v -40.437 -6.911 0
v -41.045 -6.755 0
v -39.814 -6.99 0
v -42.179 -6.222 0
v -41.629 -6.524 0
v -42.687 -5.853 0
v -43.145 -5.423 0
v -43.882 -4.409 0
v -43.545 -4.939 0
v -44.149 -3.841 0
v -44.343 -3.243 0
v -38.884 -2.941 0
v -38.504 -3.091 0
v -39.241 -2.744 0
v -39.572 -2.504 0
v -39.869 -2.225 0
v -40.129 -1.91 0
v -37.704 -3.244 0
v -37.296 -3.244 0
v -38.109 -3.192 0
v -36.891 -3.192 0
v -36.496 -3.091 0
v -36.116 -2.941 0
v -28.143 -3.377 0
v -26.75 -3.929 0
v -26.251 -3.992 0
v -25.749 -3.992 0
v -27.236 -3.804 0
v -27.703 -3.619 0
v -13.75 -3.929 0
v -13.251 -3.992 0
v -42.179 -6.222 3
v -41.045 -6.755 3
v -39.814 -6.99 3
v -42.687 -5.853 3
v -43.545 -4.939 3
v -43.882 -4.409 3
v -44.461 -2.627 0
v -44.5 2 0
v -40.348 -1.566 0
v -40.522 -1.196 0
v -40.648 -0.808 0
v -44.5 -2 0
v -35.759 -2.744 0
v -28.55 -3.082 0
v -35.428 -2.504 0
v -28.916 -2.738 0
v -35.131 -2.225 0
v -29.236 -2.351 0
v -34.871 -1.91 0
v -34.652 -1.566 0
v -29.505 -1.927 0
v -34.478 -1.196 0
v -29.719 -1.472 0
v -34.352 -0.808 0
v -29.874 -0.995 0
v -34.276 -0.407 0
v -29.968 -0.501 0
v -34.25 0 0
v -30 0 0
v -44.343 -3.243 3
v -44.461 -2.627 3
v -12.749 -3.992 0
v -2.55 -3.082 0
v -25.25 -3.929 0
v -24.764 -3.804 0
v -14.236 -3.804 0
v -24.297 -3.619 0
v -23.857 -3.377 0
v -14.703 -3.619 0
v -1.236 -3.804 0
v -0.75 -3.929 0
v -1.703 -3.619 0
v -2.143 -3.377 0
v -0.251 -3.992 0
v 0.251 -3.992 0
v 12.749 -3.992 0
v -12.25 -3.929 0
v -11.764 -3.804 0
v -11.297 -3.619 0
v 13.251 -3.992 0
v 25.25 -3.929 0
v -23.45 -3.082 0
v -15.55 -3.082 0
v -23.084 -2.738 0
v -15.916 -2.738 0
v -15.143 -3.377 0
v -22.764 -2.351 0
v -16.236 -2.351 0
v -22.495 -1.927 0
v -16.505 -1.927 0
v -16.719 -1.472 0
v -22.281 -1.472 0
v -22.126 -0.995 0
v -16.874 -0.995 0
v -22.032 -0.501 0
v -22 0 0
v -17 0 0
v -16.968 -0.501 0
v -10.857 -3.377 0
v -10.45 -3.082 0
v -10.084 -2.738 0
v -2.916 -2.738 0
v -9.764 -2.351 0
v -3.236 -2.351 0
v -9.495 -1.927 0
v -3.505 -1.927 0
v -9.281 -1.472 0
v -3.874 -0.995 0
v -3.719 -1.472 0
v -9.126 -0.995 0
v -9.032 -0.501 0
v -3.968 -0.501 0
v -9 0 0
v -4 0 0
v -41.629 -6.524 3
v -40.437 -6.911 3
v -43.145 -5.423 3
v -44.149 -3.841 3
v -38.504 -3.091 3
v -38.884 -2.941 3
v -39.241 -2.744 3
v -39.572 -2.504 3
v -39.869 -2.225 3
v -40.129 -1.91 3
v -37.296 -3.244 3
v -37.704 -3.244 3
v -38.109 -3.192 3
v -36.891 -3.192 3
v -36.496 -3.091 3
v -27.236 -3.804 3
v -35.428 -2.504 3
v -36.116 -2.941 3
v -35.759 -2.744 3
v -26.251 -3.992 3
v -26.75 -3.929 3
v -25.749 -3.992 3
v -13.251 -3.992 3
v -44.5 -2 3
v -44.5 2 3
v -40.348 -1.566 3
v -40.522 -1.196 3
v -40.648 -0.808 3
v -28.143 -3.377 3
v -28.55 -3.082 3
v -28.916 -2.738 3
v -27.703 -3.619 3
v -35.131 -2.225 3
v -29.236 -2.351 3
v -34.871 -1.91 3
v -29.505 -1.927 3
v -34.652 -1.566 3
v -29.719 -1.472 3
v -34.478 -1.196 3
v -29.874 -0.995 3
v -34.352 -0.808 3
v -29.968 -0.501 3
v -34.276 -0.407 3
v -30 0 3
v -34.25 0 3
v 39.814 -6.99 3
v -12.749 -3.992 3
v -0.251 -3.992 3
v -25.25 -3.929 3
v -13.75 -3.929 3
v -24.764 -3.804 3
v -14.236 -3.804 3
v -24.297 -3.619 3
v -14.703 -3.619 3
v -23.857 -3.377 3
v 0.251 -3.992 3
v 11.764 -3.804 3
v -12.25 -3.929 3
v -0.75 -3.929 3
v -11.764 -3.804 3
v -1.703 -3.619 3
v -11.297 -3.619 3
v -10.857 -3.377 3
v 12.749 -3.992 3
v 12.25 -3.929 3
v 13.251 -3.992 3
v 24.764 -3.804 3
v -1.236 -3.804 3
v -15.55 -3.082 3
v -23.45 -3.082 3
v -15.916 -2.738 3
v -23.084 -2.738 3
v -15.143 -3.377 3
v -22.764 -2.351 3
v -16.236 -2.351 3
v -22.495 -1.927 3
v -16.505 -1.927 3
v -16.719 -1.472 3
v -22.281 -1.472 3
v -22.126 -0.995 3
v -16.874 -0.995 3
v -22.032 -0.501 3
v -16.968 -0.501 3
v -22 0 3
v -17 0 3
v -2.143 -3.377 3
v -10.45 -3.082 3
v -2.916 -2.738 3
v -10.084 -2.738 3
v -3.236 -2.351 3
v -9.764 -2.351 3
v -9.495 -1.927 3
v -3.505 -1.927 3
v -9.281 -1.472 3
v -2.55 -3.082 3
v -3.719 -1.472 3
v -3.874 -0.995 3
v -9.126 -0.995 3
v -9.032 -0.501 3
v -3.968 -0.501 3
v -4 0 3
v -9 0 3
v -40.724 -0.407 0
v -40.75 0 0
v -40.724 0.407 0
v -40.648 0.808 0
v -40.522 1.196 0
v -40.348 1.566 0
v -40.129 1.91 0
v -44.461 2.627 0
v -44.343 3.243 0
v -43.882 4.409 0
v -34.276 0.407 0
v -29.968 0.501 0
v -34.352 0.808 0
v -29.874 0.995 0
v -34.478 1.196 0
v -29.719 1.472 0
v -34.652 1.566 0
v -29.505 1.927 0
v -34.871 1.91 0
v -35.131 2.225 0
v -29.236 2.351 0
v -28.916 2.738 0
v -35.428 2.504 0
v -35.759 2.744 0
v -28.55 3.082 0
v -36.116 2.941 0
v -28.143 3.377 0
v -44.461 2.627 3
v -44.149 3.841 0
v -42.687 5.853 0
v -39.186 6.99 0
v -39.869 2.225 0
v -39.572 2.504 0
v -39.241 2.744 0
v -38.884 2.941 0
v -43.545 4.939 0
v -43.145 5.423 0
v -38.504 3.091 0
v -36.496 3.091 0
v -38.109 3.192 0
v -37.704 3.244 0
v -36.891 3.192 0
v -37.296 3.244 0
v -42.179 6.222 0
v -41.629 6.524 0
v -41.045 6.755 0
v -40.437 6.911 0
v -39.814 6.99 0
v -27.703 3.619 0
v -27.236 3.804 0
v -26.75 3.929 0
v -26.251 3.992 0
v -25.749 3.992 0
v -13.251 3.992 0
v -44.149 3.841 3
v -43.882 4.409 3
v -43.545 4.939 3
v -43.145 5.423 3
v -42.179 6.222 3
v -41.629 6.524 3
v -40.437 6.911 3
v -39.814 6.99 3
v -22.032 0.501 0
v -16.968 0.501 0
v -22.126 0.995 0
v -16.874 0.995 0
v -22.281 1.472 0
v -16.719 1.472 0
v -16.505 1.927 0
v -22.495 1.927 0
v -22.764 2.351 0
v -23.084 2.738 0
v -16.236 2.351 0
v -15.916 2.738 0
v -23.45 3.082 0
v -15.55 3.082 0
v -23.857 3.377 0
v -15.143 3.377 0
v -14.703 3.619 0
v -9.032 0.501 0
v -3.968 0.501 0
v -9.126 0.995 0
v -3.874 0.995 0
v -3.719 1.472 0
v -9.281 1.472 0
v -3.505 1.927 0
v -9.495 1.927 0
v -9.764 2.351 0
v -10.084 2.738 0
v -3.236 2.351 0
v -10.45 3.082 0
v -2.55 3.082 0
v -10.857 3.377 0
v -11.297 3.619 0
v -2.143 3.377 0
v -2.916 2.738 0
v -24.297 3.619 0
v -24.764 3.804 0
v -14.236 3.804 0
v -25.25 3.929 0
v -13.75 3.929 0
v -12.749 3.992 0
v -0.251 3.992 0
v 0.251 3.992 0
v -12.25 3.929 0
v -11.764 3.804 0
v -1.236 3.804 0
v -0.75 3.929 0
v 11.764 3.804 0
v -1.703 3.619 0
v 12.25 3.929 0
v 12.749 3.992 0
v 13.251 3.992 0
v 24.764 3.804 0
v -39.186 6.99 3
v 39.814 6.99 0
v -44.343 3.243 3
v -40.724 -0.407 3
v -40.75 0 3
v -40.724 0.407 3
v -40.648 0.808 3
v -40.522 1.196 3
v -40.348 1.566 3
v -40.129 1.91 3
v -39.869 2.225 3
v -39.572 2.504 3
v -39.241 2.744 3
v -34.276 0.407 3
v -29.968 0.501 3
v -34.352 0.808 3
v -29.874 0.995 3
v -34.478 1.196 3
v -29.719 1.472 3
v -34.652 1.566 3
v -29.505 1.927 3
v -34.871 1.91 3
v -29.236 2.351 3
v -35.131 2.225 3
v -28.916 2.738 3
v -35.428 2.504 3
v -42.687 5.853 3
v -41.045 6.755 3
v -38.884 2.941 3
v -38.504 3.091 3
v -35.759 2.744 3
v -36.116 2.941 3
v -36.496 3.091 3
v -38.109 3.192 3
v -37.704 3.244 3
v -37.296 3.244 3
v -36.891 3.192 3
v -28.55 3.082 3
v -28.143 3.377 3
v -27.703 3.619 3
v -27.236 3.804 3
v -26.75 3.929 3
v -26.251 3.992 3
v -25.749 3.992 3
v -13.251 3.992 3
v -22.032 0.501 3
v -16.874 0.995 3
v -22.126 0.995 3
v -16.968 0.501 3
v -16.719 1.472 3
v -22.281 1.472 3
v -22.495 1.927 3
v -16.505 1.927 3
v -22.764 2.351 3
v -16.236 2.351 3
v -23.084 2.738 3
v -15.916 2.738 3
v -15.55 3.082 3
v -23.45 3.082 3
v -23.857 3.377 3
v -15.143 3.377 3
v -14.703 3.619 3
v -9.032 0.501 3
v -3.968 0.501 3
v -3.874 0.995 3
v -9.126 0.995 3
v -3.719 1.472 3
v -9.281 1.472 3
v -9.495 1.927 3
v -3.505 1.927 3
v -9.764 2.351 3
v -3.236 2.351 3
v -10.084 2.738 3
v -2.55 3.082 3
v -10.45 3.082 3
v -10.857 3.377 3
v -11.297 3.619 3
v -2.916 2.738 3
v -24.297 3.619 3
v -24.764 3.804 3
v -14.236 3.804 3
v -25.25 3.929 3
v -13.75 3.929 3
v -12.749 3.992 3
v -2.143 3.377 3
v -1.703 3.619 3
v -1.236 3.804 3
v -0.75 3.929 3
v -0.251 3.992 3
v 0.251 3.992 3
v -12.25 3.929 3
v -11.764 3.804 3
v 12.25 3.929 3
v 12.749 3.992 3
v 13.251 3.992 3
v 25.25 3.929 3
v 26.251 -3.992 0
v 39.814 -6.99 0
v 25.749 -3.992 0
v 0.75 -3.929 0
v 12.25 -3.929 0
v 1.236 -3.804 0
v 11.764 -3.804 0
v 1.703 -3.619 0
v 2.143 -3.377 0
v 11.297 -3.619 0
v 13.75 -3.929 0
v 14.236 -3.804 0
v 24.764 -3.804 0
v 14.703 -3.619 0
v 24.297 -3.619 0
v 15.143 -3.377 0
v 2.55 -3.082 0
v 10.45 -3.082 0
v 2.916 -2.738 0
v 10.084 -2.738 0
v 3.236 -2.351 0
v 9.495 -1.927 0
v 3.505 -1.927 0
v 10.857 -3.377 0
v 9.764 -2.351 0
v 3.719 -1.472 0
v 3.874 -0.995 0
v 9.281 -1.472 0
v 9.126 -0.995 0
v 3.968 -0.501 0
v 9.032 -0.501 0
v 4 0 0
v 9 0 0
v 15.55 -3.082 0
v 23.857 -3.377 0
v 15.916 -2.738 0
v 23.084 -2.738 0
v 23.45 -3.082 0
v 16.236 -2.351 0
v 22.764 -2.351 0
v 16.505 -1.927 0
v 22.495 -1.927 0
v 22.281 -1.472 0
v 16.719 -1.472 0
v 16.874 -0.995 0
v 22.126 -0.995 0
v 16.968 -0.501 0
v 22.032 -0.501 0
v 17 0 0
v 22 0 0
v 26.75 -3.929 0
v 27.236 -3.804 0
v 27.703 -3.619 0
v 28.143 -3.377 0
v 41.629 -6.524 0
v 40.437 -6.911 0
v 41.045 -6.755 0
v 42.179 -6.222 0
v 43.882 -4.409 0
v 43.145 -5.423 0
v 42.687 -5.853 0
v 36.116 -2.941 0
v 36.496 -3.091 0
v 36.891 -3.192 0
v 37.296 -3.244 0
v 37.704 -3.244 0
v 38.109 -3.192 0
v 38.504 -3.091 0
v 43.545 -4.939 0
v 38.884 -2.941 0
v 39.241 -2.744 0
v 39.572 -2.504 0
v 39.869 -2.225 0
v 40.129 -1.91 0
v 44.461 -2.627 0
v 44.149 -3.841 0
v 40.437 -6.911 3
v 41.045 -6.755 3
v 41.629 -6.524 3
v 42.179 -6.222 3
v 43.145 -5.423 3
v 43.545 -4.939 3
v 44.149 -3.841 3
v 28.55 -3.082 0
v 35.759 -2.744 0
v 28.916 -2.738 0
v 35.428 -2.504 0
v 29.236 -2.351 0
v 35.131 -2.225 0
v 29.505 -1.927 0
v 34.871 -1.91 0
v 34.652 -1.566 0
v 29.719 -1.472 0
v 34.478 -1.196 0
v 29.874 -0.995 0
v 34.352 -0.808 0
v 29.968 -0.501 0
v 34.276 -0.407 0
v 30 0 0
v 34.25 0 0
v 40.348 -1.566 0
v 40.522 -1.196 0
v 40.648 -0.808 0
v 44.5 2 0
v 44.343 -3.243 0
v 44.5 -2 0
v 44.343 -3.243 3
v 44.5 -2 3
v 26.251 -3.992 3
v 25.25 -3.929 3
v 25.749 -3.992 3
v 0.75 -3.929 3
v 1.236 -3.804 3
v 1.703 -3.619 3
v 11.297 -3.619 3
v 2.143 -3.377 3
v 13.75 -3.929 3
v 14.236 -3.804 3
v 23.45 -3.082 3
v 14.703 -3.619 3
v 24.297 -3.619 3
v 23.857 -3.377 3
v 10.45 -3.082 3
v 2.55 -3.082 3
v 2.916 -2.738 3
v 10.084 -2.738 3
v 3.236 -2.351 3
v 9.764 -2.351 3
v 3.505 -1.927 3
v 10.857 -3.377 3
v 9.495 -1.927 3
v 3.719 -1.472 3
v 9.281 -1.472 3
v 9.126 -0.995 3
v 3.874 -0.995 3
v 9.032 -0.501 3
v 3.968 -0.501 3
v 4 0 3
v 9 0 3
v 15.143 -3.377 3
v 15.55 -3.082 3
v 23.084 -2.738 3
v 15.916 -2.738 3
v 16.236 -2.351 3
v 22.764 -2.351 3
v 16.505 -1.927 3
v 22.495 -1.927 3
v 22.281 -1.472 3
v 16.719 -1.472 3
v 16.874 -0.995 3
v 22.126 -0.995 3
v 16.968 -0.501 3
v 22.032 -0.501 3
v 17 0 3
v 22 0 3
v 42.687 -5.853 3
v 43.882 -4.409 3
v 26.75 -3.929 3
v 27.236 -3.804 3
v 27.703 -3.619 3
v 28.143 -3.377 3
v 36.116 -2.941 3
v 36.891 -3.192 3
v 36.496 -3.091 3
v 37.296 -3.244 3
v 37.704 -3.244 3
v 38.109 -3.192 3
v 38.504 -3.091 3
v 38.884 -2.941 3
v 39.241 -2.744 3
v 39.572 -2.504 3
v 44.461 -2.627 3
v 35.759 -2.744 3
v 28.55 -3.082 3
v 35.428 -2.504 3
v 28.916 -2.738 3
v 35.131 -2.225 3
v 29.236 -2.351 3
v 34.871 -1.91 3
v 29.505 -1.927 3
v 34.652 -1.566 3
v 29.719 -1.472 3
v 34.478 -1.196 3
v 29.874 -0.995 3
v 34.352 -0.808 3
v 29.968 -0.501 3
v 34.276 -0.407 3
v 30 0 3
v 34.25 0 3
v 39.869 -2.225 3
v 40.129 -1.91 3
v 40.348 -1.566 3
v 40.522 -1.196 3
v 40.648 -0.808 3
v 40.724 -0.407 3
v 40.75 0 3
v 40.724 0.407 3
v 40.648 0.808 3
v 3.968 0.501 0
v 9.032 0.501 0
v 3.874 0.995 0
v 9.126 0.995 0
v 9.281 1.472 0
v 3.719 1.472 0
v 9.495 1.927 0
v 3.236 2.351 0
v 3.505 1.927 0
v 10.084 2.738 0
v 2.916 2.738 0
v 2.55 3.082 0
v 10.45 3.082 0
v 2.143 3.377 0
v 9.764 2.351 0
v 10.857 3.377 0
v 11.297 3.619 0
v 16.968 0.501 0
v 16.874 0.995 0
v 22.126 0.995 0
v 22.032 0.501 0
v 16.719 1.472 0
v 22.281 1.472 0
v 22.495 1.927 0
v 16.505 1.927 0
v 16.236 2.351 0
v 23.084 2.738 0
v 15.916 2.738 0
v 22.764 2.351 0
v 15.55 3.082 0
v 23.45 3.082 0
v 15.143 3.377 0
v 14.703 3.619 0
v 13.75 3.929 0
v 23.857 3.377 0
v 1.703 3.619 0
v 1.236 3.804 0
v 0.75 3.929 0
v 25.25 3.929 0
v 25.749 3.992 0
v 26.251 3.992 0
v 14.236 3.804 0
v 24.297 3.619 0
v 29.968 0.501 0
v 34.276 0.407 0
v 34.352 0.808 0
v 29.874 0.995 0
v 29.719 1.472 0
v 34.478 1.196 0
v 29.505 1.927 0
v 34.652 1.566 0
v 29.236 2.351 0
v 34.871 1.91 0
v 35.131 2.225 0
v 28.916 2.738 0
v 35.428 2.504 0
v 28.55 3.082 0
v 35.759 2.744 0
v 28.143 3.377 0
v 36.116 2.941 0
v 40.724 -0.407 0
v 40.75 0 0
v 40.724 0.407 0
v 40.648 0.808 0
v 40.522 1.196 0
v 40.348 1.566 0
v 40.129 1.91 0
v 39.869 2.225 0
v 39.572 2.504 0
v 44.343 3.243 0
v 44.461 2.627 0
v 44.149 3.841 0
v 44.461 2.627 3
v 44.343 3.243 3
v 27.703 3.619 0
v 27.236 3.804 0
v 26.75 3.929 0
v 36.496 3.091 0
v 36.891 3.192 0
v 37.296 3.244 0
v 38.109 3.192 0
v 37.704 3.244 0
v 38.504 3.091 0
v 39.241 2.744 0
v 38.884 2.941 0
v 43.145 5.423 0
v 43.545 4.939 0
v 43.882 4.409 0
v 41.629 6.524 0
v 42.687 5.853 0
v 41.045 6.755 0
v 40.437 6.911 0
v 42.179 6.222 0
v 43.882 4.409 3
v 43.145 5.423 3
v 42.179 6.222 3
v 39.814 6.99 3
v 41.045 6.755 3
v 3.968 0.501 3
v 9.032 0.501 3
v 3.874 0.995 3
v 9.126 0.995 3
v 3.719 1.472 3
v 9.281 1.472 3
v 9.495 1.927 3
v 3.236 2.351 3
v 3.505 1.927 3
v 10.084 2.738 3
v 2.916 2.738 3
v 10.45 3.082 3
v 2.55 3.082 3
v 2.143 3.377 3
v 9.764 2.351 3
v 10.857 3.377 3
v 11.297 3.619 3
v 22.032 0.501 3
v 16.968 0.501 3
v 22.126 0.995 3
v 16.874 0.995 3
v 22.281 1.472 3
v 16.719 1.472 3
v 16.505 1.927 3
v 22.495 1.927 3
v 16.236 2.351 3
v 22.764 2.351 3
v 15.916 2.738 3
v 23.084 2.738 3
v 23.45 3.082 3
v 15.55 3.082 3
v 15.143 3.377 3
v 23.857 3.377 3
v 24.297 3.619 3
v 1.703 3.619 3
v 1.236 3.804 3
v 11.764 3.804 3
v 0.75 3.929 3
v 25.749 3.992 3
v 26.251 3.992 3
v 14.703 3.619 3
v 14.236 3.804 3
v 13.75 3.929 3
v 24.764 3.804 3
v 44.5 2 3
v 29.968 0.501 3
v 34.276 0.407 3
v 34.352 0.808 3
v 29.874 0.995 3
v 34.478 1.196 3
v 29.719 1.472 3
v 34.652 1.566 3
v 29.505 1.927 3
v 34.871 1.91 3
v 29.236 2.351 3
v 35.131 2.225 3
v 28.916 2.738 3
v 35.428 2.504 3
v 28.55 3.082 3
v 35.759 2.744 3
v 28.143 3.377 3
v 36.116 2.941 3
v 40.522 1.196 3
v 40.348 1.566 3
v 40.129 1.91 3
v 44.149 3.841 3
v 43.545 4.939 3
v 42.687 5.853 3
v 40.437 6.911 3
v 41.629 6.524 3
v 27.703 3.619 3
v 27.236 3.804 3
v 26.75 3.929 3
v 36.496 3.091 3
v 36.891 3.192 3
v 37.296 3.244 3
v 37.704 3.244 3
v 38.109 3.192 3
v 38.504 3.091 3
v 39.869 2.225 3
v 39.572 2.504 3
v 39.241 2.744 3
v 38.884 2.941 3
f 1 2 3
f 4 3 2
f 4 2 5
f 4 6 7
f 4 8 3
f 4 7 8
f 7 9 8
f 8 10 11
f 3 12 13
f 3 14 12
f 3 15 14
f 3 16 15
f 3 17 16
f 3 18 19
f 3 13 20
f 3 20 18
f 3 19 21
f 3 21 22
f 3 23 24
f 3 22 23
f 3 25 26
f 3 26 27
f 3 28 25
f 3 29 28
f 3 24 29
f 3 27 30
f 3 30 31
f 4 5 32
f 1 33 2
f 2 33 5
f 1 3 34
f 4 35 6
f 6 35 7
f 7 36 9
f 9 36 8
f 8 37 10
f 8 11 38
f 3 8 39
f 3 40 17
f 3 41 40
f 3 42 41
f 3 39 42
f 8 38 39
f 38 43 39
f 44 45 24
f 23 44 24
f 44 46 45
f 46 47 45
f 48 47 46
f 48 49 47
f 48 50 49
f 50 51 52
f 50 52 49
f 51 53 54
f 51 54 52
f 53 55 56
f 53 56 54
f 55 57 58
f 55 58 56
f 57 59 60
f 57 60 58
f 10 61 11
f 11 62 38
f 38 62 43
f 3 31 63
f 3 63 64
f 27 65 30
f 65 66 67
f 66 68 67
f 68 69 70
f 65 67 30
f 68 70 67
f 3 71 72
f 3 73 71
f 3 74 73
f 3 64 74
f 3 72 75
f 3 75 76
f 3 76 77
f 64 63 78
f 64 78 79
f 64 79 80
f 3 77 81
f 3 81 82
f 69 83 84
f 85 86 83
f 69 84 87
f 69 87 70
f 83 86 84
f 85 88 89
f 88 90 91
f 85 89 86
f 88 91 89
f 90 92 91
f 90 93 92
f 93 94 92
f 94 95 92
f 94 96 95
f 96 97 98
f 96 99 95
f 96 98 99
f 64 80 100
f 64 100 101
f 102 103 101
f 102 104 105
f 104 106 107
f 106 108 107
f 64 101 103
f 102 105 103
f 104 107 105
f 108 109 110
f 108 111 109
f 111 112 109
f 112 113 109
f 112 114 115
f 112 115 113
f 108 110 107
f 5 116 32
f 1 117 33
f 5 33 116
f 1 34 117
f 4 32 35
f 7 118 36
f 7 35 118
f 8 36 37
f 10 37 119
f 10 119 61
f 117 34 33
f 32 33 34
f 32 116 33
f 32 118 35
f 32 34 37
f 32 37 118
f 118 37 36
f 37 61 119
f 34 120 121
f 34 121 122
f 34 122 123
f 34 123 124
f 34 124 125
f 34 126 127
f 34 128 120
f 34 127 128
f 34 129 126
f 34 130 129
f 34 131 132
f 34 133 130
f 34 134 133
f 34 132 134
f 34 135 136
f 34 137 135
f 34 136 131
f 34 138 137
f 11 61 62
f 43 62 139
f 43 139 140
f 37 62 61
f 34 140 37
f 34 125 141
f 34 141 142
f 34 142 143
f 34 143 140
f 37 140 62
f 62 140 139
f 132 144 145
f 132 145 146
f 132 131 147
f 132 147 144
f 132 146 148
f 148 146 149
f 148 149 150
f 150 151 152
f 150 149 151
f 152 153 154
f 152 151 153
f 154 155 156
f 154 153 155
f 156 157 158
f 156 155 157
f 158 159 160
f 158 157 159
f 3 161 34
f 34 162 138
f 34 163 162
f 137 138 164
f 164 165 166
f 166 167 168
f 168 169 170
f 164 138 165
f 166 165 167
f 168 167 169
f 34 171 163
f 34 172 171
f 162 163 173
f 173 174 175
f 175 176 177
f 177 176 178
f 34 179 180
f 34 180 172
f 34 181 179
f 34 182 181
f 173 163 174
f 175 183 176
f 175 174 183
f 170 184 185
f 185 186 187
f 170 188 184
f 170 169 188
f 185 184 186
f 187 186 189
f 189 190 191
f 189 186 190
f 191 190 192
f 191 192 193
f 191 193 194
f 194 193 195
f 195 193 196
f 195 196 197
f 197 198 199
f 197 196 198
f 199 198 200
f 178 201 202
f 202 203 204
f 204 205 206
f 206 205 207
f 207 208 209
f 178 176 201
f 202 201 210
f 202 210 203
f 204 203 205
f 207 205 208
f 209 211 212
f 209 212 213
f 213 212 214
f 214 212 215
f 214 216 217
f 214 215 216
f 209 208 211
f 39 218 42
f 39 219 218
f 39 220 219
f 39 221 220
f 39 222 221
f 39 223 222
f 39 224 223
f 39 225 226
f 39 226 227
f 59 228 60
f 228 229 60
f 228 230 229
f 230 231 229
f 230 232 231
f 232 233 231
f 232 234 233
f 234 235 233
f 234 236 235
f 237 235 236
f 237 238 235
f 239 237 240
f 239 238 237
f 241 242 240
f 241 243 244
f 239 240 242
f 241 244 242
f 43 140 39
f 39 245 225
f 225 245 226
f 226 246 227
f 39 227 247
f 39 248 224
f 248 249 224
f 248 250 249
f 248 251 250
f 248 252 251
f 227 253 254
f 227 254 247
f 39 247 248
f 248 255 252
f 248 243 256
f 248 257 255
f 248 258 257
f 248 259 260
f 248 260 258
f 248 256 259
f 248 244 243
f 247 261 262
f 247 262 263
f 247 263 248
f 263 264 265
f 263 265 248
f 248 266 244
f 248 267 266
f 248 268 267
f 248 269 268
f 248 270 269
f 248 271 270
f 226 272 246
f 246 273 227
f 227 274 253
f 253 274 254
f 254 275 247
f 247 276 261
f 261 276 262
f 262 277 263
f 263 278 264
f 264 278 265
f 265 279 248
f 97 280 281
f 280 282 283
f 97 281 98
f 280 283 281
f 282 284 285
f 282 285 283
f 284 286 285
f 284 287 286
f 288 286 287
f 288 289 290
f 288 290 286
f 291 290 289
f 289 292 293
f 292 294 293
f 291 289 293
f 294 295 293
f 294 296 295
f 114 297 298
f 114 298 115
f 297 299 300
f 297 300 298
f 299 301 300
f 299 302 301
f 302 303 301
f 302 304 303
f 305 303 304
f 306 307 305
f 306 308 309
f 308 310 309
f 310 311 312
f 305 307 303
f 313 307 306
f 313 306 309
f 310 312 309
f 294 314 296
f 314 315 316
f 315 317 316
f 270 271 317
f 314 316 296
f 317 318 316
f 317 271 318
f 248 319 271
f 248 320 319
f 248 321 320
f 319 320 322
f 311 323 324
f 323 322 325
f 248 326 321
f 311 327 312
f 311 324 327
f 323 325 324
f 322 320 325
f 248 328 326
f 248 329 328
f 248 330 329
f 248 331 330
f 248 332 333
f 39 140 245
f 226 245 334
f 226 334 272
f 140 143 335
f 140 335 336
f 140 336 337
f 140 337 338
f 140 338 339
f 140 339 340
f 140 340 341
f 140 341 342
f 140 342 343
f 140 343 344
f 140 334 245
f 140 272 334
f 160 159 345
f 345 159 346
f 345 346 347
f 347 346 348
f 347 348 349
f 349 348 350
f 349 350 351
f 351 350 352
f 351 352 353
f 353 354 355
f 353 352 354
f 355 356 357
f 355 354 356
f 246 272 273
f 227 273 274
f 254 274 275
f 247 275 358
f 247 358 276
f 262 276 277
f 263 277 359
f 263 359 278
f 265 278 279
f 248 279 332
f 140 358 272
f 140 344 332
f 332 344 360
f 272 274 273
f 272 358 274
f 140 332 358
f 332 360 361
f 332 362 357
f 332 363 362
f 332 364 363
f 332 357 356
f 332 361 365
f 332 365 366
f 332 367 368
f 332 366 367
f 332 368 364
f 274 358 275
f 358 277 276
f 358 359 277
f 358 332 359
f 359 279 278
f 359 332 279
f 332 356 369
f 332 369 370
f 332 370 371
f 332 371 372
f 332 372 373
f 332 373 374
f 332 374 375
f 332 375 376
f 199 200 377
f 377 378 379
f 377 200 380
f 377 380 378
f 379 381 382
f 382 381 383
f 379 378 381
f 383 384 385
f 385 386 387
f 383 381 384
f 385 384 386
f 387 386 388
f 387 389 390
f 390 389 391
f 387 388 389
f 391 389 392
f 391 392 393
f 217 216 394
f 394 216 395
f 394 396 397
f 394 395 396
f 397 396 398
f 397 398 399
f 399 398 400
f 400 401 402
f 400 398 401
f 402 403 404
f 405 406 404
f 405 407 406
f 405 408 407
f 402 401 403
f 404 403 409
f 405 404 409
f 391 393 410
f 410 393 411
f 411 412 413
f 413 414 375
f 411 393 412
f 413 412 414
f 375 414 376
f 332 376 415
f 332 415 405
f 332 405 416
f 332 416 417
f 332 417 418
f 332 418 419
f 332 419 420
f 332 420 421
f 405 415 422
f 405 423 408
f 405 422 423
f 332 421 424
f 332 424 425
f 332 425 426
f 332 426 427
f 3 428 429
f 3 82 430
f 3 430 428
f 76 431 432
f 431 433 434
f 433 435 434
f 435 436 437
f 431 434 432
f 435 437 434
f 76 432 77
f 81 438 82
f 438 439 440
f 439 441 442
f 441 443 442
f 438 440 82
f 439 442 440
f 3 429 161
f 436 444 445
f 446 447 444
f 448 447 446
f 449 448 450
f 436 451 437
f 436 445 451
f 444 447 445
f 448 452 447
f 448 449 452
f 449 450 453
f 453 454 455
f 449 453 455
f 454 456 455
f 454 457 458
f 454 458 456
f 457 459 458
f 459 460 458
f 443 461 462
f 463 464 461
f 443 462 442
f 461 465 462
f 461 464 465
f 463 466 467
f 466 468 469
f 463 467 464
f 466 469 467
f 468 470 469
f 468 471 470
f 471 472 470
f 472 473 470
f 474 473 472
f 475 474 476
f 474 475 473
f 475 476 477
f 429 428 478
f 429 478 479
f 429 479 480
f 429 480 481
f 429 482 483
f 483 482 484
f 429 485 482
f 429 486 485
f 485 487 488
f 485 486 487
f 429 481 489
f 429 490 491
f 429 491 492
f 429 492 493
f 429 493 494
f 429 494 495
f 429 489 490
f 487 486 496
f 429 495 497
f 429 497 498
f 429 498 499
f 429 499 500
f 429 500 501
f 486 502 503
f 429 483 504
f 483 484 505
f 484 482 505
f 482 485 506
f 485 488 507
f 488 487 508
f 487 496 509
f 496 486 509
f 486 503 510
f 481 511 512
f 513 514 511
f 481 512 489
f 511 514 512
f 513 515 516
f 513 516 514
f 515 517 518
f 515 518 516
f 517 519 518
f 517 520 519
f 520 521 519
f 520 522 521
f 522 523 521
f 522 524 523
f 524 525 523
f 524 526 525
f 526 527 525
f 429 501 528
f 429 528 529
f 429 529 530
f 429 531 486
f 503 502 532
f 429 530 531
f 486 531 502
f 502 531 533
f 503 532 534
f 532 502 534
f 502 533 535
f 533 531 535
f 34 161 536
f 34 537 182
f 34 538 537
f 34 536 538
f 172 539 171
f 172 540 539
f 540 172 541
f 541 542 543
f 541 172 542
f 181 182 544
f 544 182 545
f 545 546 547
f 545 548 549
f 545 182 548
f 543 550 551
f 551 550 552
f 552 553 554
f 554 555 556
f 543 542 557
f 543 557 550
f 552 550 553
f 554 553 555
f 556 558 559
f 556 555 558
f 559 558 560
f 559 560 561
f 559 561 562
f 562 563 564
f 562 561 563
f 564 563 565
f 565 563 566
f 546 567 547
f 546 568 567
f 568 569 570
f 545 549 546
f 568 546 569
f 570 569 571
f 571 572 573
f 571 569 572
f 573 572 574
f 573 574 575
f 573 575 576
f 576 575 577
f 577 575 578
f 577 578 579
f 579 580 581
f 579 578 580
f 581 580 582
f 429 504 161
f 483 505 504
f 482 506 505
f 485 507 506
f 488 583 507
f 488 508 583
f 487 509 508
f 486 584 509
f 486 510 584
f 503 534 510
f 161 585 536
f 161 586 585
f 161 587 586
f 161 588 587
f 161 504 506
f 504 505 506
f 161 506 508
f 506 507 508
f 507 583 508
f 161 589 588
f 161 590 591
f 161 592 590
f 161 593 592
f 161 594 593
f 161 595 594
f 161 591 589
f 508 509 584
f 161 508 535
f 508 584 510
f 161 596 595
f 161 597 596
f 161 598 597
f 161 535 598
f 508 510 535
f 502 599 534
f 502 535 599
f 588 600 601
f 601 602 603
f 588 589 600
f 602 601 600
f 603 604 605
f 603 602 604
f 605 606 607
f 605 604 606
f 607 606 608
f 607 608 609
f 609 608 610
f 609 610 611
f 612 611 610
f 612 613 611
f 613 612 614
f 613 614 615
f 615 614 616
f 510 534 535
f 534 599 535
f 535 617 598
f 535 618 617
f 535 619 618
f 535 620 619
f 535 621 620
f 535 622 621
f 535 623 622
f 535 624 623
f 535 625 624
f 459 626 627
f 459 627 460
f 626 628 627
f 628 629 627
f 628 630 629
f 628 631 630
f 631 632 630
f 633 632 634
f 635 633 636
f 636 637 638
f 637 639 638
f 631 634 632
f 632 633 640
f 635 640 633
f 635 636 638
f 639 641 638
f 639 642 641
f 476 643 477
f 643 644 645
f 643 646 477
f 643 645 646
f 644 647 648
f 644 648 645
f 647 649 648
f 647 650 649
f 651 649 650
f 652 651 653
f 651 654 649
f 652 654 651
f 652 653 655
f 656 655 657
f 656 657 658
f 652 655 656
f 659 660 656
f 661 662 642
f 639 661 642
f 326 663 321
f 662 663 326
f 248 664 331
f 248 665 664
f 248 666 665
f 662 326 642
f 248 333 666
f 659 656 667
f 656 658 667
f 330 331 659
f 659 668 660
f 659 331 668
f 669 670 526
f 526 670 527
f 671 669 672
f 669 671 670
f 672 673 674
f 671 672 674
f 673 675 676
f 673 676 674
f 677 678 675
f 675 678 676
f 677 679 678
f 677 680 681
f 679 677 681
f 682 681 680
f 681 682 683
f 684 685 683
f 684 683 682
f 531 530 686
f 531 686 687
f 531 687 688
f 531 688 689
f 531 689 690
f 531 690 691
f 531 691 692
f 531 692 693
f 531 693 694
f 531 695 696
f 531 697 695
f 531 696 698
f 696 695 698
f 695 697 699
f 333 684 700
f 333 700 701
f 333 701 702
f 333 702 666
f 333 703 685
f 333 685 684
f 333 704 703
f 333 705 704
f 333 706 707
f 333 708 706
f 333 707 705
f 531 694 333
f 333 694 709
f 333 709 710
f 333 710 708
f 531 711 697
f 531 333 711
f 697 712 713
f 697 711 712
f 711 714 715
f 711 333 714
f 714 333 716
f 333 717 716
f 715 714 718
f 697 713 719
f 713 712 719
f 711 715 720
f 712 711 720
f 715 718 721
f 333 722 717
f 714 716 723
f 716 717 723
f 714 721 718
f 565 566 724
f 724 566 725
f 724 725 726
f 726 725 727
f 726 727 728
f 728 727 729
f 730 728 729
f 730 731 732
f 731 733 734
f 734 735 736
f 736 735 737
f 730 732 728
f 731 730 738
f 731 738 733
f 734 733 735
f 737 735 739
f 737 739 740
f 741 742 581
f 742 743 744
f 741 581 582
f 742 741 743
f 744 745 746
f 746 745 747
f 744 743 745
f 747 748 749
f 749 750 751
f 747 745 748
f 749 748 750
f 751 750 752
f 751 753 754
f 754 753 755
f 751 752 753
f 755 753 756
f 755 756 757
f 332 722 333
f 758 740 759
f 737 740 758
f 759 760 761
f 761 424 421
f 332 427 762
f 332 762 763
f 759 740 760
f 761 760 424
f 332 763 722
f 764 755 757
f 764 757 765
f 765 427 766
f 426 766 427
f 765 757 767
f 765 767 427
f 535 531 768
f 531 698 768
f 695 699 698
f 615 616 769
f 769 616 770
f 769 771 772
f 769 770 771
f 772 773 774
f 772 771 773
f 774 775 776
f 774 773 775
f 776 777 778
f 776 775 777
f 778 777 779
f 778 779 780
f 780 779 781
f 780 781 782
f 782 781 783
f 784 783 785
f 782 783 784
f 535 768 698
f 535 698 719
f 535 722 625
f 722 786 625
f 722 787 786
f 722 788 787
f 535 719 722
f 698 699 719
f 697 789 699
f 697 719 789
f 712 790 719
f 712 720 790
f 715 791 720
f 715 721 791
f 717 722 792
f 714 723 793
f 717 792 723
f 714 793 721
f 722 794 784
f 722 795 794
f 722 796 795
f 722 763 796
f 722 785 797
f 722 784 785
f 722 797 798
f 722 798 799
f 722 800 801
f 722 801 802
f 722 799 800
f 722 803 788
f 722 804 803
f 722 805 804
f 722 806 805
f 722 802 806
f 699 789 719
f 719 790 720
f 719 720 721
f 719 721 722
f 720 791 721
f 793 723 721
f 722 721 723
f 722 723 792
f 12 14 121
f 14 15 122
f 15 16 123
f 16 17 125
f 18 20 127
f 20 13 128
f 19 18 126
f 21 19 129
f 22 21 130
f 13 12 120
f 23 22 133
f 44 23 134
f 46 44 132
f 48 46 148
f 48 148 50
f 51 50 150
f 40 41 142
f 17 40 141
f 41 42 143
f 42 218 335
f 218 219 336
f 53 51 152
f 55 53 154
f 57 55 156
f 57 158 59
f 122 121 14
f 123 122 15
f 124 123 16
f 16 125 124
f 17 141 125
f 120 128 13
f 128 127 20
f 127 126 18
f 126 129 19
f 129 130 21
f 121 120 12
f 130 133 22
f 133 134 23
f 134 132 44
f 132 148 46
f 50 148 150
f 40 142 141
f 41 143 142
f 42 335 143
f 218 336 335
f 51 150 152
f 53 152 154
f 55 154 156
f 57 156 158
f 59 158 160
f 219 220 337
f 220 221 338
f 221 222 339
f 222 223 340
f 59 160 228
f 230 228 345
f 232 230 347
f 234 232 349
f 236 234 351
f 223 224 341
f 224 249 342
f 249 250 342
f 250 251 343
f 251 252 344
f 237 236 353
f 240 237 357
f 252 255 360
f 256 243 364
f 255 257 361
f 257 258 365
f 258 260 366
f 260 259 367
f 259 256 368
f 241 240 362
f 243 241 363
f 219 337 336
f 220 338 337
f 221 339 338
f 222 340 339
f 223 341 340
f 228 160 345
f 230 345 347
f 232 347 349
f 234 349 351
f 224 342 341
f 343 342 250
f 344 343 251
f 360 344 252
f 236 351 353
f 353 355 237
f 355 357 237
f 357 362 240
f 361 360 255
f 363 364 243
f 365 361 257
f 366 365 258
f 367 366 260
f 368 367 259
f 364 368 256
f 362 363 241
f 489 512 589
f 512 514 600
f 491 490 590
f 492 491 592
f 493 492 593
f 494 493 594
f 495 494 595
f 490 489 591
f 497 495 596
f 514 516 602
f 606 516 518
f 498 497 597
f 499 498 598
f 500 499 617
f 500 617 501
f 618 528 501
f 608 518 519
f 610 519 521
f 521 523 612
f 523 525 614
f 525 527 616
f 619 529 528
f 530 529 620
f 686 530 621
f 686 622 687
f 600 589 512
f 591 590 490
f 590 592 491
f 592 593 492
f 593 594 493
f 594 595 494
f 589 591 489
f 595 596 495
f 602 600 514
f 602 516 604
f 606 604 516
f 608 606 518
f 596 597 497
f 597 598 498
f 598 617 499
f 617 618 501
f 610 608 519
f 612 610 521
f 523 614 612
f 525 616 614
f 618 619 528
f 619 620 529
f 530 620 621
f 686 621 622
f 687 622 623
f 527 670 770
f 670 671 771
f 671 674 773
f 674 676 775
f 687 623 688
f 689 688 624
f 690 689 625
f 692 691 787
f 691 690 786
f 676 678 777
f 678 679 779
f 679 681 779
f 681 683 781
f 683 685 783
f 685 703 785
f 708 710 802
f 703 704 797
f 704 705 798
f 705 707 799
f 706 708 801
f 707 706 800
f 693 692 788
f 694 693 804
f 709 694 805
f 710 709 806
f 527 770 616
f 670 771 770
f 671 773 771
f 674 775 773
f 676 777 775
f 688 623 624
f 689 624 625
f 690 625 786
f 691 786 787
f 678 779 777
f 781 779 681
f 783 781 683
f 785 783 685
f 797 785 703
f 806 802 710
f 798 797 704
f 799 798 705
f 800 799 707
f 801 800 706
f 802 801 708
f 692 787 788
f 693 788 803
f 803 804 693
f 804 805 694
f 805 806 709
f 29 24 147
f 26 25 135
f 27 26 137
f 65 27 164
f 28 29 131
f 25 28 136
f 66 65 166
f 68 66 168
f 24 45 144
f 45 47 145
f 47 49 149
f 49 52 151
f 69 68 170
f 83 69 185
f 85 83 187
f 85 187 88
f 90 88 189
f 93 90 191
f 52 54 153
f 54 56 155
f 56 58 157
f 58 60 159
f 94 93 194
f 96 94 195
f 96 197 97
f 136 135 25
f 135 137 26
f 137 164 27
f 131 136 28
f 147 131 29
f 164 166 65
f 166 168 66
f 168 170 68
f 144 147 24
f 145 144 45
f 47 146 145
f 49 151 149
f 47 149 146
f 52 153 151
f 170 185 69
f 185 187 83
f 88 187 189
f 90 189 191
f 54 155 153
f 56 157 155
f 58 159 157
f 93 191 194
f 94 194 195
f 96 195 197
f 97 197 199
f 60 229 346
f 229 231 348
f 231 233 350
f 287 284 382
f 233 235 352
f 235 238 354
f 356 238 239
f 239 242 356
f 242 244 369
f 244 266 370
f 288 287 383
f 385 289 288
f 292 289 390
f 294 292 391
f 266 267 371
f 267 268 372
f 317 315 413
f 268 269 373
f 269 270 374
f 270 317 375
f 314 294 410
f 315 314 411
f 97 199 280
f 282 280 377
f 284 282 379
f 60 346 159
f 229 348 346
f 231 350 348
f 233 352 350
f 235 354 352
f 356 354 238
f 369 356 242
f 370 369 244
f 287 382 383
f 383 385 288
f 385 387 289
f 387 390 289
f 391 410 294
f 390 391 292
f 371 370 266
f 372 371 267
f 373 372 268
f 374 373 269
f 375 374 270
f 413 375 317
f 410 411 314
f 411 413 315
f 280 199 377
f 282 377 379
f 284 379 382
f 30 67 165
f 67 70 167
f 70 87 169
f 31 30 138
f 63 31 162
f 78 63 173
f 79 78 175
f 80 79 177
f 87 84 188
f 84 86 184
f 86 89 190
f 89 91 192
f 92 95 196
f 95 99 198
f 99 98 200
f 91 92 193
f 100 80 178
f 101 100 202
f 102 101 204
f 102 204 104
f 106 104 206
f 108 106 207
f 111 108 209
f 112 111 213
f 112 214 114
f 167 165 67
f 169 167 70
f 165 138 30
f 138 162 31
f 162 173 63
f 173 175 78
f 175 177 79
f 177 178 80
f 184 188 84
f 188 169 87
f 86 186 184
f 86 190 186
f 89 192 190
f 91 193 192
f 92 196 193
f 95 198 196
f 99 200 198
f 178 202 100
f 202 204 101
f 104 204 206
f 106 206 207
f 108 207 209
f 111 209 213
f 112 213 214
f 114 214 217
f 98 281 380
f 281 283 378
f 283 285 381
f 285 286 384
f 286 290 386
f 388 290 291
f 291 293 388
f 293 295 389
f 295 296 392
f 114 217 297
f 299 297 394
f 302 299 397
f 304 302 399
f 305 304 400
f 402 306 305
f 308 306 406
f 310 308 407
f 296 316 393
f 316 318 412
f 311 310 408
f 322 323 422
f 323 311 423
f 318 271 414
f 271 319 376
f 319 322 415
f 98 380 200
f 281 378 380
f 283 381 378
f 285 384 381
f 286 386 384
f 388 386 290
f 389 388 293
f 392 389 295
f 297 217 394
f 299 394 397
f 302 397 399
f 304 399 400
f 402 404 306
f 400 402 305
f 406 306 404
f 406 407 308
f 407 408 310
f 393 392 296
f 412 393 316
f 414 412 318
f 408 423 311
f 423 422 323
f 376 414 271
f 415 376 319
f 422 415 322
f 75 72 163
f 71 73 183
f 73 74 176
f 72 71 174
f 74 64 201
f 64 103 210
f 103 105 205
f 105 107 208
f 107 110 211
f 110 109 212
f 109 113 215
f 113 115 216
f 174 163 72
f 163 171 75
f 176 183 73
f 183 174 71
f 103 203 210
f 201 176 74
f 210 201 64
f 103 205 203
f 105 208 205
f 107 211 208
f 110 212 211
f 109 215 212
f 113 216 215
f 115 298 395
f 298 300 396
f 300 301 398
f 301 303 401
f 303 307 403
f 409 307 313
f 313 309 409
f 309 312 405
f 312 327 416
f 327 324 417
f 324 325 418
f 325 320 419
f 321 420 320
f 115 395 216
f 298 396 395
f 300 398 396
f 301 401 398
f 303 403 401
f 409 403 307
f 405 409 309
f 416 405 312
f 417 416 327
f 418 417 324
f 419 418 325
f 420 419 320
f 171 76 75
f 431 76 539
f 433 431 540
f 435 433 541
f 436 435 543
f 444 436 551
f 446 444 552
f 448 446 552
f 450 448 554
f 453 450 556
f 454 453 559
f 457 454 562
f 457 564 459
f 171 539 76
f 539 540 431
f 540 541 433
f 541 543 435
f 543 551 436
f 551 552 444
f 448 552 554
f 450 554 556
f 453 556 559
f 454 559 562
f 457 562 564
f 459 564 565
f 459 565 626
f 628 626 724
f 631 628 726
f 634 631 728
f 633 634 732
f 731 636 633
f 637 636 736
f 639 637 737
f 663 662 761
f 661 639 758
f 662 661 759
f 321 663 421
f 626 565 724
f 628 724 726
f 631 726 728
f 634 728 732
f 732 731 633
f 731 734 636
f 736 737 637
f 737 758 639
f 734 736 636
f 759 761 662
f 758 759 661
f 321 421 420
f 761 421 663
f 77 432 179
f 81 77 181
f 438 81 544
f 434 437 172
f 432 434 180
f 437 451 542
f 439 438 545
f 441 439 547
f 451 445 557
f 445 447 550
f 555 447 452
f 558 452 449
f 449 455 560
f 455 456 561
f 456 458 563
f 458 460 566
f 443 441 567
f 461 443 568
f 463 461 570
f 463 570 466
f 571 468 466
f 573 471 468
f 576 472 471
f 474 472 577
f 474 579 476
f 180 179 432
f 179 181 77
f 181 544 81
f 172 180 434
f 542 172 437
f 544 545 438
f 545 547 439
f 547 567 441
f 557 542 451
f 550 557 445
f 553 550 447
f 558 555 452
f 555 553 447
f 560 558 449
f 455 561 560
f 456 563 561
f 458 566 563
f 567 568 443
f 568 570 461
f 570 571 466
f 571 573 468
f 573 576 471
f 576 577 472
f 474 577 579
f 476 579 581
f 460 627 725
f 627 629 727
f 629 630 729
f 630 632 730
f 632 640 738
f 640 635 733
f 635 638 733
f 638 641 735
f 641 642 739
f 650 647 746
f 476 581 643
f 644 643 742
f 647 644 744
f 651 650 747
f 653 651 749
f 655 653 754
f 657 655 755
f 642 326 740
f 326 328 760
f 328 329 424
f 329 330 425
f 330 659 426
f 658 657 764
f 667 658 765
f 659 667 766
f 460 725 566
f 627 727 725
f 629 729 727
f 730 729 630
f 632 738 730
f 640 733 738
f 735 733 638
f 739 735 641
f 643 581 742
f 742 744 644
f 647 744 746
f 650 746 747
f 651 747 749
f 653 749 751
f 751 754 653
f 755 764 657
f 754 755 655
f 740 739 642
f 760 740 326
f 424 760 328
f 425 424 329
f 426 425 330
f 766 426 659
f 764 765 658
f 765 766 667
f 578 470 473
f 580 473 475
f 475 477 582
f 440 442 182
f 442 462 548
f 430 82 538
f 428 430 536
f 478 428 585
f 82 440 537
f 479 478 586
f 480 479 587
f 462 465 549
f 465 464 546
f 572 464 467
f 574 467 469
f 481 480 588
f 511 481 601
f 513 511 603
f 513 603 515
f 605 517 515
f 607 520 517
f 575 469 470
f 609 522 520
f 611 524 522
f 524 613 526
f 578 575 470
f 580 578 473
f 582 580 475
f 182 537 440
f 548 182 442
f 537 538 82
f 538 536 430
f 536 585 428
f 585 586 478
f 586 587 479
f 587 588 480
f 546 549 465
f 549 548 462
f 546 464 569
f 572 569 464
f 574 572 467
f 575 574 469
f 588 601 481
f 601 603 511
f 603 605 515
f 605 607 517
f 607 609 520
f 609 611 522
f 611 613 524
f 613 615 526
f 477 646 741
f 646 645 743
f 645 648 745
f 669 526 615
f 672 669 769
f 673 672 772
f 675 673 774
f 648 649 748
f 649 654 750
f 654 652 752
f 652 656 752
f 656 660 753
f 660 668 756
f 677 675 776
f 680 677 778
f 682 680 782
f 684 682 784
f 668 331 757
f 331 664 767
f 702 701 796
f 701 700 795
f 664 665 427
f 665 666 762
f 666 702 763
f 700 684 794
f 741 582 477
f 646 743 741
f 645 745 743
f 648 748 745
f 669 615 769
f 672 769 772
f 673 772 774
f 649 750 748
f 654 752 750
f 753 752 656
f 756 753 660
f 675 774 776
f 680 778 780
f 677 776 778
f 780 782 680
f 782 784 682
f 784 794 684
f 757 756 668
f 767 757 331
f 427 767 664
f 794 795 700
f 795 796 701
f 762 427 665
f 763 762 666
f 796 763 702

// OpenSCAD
$fn = 50;

difference() {
	union() {
		hull() {
			translate(v = [-39.5, 2.0, 0]) {
				cylinder(h = 3, r = 5);
			}
			translate(v = [39.5, 2.0, 0]) {
				cylinder(h = 3, r = 5);
			}
			translate(v = [-39.5, -2.0, 0]) {
				cylinder(h = 3, r = 5);
			}
			translate(v = [39.5, -2.0, 0]) {
				cylinder(h = 3, r = 5);
			}
		}
	}
	union() {
		translate(v = [-37.5, 0.0, 0]) {
			cylinder(h = 3, r = 3.25);
		}
		translate(v = [37.5, 0.0, 0]) {
			cylinder(h = 3, r = 3.25);
		}
		translate(v = [-26.0, 0, 0.0]) {
			cylinder(h = 3, r = 4.0);
		}
		translate(v = [-13.0, 0, 0.0]) {
			cylinder(h = 3, r = 4.0);
		}
		cylinder(h = 3, r = 4.0);
		translate(v = [13.0, 0, 0.0]) {
			cylinder(h = 3, r = 4.0);
		}
		translate(v = [26.0, 0, 0.0]) {
			cylinder(h = 3, r = 4.0);
		}
	}
}
